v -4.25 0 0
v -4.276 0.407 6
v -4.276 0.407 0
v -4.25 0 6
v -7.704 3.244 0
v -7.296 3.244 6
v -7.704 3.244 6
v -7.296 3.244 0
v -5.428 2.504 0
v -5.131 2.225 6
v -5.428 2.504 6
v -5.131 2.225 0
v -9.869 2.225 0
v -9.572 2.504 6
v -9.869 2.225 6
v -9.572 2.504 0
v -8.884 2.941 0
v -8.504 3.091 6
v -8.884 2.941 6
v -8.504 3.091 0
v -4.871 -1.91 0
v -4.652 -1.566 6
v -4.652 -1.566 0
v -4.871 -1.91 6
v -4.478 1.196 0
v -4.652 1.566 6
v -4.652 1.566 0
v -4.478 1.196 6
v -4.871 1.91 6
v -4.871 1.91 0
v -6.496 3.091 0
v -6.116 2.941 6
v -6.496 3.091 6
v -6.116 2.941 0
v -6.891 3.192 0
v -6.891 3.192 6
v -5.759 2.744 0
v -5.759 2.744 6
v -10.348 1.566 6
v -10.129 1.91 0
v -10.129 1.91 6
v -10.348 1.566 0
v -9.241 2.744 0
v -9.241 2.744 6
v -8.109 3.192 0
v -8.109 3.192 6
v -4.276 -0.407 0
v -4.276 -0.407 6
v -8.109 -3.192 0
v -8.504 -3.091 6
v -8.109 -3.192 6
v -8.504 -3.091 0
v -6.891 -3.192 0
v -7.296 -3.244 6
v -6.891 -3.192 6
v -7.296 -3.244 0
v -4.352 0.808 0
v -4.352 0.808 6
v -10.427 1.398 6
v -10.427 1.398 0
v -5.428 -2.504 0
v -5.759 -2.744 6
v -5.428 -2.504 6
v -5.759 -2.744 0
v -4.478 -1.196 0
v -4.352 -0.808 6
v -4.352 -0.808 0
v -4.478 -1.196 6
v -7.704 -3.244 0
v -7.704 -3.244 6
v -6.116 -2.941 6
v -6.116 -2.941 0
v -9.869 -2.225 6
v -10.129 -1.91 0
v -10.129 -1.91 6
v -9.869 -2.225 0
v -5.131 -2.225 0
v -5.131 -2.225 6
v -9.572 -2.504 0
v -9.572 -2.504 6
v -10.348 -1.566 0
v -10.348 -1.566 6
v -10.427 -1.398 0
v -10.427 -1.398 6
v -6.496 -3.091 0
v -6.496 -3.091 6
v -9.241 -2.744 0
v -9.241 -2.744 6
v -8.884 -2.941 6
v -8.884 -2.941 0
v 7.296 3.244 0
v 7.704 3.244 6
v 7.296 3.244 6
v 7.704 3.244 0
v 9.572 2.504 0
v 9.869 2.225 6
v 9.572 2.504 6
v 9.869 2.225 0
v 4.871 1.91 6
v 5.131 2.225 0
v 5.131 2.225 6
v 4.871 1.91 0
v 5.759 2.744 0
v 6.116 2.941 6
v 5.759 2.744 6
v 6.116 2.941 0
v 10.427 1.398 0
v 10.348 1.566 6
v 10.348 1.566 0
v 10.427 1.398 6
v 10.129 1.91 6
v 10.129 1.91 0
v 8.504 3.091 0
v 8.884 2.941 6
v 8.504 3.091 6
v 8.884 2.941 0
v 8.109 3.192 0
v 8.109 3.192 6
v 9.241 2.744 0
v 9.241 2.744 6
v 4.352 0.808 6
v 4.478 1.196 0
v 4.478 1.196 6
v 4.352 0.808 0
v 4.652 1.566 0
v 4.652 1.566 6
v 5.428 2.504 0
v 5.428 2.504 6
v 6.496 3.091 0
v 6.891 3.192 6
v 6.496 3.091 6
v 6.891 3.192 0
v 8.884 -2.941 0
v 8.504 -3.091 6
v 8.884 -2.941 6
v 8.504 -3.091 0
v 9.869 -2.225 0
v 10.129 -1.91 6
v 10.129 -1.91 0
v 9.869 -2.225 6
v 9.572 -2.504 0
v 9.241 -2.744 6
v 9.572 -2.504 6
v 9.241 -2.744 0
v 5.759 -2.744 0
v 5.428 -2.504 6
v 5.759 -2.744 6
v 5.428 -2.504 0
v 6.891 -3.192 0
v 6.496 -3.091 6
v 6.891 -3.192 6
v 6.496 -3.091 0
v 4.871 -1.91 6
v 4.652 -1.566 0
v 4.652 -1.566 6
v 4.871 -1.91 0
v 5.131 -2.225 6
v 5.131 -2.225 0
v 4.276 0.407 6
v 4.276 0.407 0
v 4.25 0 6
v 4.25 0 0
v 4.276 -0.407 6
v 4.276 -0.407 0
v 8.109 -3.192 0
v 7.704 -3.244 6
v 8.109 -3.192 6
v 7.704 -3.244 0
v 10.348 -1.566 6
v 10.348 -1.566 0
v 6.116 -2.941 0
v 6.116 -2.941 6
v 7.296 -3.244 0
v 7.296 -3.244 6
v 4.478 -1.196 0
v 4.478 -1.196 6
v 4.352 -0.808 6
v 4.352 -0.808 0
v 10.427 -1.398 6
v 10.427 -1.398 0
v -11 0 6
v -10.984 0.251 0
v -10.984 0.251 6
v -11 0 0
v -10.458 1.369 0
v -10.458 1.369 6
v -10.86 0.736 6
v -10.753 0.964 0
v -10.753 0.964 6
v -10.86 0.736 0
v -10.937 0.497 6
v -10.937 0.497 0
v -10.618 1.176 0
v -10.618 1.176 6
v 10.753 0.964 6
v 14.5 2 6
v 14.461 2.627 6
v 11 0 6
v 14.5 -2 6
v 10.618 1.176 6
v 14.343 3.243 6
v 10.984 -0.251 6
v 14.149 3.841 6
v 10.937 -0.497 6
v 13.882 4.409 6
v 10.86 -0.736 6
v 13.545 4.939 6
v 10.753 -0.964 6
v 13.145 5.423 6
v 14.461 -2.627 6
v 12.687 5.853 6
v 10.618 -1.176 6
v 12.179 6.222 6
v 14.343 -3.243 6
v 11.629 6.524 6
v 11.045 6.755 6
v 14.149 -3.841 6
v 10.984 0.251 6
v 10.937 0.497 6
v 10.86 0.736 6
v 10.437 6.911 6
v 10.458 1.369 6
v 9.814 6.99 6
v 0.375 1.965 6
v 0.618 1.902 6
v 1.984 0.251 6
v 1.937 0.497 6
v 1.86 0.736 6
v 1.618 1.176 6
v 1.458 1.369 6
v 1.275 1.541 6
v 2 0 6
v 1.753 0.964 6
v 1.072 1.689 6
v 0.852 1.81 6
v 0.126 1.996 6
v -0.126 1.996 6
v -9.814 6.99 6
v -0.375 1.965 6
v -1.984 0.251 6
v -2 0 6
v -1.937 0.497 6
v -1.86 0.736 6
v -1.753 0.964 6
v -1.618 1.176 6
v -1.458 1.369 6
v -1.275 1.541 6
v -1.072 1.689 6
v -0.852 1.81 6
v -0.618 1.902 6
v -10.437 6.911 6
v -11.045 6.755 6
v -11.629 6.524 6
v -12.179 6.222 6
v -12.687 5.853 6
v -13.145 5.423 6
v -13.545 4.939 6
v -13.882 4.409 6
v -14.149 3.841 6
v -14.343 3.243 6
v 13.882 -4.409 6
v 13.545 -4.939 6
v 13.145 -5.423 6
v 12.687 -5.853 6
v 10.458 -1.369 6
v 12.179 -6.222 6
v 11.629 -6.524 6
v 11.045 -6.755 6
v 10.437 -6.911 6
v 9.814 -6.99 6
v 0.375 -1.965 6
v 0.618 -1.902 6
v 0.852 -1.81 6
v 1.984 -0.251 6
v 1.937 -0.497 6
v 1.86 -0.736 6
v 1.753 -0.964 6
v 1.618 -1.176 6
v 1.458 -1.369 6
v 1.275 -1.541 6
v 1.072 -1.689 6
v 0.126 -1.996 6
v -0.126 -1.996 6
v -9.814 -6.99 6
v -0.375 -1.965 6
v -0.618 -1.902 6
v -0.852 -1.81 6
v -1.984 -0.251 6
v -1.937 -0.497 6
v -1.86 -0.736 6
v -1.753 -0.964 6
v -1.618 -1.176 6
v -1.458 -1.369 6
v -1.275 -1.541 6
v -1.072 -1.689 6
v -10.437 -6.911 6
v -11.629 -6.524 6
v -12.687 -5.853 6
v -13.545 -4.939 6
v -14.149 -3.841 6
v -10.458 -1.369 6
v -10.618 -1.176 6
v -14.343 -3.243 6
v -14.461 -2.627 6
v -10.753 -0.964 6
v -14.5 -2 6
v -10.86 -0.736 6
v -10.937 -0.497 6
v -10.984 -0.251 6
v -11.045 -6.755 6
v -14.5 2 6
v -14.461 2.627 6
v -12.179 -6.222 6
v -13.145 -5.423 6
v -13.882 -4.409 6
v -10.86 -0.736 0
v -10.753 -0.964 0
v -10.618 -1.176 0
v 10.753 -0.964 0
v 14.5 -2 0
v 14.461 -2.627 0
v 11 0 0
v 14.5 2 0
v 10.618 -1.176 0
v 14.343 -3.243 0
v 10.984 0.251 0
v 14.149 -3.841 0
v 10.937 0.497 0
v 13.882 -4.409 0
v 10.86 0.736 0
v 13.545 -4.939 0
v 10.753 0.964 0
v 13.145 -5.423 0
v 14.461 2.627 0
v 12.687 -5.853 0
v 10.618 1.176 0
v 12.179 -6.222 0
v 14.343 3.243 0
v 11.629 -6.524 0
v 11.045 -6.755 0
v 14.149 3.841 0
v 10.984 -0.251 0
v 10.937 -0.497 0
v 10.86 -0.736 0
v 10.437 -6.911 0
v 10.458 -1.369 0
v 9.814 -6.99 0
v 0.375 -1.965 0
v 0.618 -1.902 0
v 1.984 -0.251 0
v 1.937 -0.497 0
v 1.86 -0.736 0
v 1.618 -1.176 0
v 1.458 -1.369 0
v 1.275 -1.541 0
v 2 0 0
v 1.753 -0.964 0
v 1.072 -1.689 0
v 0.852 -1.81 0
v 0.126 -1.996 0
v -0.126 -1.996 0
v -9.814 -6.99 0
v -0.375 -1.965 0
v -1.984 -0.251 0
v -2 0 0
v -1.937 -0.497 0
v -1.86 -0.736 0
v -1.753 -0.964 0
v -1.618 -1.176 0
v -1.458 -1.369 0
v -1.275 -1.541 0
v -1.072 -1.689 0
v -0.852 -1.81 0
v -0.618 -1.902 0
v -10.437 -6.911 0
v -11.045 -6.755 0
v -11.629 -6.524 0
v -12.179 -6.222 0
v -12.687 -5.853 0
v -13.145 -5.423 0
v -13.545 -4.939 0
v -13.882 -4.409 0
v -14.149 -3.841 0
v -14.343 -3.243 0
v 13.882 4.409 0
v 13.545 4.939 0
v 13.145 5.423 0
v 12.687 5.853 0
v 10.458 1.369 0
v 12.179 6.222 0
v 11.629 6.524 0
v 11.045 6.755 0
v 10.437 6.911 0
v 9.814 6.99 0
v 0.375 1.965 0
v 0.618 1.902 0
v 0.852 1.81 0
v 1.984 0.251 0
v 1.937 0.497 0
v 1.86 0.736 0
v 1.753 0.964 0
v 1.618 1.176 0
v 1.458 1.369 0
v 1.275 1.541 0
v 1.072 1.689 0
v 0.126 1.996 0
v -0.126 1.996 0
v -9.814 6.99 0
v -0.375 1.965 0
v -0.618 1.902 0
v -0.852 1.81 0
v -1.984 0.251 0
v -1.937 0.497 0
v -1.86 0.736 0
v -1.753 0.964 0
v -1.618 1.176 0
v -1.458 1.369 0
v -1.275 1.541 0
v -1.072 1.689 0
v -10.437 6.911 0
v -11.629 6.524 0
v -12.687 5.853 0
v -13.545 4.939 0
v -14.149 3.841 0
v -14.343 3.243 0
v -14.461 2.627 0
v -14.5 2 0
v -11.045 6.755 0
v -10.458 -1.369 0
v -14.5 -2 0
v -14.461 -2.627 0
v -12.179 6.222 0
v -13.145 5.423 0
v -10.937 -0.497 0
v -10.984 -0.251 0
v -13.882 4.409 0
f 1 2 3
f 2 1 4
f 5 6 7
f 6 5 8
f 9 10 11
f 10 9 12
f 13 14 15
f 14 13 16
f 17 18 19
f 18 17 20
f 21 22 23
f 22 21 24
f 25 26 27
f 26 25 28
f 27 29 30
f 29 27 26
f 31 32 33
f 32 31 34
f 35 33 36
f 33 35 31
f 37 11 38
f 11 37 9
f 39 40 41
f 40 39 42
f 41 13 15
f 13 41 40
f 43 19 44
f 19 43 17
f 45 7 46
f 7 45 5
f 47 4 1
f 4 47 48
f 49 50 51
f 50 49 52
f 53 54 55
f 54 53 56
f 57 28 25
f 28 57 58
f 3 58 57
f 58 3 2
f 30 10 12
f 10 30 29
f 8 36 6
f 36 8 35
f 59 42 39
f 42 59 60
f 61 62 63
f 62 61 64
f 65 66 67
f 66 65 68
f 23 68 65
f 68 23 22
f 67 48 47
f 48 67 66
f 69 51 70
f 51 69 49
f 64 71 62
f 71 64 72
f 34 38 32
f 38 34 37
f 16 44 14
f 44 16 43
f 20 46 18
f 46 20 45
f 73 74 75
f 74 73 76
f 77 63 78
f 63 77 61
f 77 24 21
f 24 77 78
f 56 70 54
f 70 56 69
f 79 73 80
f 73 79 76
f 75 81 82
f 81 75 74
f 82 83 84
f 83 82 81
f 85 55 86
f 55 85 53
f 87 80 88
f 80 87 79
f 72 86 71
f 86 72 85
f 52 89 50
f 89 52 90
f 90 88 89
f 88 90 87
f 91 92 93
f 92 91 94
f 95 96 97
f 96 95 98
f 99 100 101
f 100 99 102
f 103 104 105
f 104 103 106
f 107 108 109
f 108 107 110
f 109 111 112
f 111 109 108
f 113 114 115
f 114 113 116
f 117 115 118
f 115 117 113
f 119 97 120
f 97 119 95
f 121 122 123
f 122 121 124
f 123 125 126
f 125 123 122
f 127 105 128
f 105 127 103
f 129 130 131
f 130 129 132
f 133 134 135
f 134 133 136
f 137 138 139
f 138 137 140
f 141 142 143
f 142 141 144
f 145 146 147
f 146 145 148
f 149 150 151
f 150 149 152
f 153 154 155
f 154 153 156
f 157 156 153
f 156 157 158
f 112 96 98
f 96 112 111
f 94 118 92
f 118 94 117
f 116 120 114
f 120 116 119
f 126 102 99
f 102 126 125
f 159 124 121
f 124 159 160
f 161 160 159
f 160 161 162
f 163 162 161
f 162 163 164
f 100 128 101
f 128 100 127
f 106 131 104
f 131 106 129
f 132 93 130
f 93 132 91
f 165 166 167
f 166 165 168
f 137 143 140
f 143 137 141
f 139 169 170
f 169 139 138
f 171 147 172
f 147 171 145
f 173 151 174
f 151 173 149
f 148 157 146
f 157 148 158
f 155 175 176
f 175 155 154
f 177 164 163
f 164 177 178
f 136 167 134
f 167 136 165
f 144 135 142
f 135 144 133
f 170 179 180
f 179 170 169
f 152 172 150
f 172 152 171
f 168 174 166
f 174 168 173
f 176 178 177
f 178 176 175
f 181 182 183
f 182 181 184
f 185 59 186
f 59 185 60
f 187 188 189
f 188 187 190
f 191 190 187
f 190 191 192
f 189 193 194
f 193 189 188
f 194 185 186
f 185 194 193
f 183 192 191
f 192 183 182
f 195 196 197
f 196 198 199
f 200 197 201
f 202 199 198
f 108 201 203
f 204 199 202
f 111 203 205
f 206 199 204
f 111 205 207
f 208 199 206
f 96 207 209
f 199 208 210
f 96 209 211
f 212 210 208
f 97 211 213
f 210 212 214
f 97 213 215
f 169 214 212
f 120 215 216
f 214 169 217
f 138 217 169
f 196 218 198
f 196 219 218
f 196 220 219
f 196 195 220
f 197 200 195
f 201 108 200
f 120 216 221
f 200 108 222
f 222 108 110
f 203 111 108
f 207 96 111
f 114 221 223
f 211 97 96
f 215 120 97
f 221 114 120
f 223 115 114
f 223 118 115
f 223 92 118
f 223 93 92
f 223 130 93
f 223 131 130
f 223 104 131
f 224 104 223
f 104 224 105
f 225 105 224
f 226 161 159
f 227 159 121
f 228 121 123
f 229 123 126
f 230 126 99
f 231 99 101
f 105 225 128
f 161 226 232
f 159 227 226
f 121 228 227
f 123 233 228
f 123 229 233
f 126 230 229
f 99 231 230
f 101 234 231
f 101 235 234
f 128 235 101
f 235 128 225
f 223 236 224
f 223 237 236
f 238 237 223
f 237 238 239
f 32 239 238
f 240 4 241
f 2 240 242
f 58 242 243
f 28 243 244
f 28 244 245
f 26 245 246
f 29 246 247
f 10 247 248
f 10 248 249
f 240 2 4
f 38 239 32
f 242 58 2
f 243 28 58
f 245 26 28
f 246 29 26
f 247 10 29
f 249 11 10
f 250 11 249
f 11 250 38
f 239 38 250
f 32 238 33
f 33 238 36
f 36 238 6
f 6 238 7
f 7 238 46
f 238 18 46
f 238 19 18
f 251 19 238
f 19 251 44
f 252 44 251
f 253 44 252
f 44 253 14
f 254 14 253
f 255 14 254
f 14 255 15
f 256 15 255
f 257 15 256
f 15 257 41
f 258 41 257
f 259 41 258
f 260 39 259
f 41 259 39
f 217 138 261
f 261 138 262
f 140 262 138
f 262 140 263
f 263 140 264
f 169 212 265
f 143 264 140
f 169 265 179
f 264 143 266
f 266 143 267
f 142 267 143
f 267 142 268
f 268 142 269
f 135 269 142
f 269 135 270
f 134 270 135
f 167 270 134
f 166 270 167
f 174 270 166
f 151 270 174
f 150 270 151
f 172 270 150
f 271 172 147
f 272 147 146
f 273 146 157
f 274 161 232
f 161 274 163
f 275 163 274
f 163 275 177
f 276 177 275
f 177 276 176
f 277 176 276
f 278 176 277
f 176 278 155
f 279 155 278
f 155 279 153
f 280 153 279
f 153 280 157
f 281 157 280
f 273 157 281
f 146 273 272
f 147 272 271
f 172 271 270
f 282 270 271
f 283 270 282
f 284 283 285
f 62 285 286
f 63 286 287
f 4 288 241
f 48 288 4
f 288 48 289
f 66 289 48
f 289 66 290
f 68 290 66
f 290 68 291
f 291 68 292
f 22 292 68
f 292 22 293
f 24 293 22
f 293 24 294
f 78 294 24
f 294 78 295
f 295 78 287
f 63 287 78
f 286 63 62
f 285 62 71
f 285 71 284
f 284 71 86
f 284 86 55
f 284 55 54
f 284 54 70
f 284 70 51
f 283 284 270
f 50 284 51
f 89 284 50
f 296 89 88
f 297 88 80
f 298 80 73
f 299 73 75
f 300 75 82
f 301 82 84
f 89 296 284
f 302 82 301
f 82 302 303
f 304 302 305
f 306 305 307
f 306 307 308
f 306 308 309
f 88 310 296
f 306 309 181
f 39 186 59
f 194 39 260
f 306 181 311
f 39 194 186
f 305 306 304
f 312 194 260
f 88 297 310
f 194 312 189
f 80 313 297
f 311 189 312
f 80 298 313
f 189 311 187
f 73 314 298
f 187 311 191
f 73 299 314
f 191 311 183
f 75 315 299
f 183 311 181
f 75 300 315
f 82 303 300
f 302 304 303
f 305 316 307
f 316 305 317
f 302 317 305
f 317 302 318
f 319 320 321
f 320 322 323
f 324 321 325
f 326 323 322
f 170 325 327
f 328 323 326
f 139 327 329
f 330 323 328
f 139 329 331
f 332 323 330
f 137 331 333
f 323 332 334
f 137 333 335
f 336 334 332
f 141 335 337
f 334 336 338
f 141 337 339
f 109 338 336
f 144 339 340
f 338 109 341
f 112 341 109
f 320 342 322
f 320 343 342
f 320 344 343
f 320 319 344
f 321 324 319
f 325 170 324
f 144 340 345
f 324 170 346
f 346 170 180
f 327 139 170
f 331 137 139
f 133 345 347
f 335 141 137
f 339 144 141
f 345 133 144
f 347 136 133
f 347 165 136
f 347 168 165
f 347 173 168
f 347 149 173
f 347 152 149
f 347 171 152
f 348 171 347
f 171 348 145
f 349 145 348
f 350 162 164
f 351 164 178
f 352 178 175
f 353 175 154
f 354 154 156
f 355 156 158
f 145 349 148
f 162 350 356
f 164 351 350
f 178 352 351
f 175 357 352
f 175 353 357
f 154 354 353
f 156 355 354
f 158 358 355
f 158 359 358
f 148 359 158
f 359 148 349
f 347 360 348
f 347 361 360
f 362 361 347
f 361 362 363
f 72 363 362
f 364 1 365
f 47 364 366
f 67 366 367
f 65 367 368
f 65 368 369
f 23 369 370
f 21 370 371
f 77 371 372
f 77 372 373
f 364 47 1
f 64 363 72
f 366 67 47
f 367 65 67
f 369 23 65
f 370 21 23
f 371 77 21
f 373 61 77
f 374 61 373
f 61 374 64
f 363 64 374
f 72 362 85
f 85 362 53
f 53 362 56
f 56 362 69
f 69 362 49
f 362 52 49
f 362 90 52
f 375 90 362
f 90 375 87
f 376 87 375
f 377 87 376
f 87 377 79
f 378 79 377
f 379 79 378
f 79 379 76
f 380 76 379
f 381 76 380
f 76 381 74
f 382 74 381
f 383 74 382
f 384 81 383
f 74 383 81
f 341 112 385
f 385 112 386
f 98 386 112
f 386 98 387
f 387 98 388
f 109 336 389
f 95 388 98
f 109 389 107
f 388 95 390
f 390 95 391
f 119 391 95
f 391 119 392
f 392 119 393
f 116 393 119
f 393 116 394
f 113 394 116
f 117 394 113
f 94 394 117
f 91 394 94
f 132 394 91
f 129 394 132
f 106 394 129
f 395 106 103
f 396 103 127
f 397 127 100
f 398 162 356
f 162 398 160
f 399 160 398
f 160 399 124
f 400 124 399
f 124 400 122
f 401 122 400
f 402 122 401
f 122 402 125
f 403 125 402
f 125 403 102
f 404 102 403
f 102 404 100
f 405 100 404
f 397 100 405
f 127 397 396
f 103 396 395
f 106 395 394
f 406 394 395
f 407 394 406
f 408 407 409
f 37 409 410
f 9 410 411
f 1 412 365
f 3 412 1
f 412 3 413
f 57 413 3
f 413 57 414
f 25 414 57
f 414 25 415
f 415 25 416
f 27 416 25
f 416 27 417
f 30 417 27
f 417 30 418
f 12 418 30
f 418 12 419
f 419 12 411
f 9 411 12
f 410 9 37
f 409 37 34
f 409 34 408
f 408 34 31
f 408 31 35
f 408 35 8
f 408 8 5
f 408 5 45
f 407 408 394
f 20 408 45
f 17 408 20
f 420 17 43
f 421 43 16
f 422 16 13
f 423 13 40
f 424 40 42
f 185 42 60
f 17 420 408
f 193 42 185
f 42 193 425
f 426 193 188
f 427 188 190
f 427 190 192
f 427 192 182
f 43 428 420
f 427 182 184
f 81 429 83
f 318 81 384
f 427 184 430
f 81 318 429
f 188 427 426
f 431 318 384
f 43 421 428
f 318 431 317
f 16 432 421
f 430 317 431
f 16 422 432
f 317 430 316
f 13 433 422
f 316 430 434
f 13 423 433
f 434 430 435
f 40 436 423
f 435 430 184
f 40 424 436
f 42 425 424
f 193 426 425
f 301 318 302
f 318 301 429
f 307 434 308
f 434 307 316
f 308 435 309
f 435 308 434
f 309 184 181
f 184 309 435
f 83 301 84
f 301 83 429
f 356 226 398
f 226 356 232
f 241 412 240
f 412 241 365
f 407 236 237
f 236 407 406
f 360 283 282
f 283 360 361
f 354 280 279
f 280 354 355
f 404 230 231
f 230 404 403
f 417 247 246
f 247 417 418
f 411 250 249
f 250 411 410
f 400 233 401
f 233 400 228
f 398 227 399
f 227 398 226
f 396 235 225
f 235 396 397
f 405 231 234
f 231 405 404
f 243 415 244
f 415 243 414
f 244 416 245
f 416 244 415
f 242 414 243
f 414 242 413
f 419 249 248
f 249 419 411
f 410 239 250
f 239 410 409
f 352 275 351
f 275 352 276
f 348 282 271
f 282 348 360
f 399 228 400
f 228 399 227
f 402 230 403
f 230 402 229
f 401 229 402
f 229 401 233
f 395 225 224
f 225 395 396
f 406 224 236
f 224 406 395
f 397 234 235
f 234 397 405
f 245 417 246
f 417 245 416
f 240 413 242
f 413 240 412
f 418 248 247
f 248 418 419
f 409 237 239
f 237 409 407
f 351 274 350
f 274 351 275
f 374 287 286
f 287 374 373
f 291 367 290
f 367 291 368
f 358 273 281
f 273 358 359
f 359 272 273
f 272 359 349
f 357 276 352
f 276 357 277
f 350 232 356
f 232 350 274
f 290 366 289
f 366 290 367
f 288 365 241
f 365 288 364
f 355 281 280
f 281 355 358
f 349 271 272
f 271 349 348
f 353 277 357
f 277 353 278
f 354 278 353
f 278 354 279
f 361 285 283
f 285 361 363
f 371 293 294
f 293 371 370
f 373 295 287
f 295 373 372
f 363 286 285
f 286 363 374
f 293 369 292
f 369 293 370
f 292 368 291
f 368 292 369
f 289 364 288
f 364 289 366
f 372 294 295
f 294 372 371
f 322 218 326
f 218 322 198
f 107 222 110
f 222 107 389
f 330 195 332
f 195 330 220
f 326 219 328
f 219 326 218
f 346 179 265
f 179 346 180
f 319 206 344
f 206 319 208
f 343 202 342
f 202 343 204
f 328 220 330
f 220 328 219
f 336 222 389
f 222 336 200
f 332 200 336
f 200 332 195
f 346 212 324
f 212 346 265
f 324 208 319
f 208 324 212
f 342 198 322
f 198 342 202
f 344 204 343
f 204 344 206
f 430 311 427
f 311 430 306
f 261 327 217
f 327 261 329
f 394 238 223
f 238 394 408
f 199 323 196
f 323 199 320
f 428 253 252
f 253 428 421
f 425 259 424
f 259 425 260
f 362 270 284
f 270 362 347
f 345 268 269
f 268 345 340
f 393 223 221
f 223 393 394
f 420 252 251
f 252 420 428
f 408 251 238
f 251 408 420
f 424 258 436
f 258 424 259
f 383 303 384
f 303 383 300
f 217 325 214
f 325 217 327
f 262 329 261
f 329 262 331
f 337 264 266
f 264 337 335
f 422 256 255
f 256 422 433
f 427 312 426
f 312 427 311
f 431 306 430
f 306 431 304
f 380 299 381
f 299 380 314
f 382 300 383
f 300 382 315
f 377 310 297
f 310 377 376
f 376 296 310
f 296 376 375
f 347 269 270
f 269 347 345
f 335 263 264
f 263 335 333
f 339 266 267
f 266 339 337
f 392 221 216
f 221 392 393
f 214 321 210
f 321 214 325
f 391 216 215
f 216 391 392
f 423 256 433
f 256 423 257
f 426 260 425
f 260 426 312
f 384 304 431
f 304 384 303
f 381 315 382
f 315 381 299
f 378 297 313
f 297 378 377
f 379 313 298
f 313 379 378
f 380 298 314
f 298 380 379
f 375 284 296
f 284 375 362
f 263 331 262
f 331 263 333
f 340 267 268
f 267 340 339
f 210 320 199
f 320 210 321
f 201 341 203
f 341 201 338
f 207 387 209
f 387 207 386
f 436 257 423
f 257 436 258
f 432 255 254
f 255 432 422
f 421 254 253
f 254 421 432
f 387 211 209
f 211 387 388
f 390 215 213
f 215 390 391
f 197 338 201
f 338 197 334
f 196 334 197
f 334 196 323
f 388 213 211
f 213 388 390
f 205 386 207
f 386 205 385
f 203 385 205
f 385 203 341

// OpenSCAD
$fn = 50;


difference() {
	union() {
		hull() {
			translate(v = [-9.5000000000, 2.0000000000, 0]) {
				cylinder(h = 6, r = 5);
			}
			translate(v = [9.5000000000, 2.0000000000, 0]) {
				cylinder(h = 6, r = 5);
			}
			translate(v = [-9.5000000000, -2.0000000000, 0]) {
				cylinder(h = 6, r = 5);
			}
			translate(v = [9.5000000000, -2.0000000000, 0]) {
				cylinder(h = 6, r = 5);
			}
		}
	}
	union() {
		#translate(v = [-7.5000000000, 0.0000000000, -100.0000000000]) {
			cylinder(h = 200, r = 3.2500000000);
		}
		#translate(v = [-7.5000000000, 0.0000000000, -100.0000000000]) {
			cylinder(h = 200, r = 3.2500000000);
		}
		#translate(v = [7.5000000000, 0.0000000000, -100.0000000000]) {
			cylinder(h = 200, r = 3.2500000000);
		}
		#translate(v = [7.5000000000, 0.0000000000, -100.0000000000]) {
			cylinder(h = 200, r = 3.2500000000);
		}
		#translate(v = [-9.0000000000, 0, 0]) {
			cylinder(h = 6, r = 2.0000000000);
		}
		#cylinder(h = 6, r = 2.0000000000);
		#translate(v = [9.0000000000, 0, 0]) {
			cylinder(h = 6, r = 2.0000000000);
		}
	}
}
